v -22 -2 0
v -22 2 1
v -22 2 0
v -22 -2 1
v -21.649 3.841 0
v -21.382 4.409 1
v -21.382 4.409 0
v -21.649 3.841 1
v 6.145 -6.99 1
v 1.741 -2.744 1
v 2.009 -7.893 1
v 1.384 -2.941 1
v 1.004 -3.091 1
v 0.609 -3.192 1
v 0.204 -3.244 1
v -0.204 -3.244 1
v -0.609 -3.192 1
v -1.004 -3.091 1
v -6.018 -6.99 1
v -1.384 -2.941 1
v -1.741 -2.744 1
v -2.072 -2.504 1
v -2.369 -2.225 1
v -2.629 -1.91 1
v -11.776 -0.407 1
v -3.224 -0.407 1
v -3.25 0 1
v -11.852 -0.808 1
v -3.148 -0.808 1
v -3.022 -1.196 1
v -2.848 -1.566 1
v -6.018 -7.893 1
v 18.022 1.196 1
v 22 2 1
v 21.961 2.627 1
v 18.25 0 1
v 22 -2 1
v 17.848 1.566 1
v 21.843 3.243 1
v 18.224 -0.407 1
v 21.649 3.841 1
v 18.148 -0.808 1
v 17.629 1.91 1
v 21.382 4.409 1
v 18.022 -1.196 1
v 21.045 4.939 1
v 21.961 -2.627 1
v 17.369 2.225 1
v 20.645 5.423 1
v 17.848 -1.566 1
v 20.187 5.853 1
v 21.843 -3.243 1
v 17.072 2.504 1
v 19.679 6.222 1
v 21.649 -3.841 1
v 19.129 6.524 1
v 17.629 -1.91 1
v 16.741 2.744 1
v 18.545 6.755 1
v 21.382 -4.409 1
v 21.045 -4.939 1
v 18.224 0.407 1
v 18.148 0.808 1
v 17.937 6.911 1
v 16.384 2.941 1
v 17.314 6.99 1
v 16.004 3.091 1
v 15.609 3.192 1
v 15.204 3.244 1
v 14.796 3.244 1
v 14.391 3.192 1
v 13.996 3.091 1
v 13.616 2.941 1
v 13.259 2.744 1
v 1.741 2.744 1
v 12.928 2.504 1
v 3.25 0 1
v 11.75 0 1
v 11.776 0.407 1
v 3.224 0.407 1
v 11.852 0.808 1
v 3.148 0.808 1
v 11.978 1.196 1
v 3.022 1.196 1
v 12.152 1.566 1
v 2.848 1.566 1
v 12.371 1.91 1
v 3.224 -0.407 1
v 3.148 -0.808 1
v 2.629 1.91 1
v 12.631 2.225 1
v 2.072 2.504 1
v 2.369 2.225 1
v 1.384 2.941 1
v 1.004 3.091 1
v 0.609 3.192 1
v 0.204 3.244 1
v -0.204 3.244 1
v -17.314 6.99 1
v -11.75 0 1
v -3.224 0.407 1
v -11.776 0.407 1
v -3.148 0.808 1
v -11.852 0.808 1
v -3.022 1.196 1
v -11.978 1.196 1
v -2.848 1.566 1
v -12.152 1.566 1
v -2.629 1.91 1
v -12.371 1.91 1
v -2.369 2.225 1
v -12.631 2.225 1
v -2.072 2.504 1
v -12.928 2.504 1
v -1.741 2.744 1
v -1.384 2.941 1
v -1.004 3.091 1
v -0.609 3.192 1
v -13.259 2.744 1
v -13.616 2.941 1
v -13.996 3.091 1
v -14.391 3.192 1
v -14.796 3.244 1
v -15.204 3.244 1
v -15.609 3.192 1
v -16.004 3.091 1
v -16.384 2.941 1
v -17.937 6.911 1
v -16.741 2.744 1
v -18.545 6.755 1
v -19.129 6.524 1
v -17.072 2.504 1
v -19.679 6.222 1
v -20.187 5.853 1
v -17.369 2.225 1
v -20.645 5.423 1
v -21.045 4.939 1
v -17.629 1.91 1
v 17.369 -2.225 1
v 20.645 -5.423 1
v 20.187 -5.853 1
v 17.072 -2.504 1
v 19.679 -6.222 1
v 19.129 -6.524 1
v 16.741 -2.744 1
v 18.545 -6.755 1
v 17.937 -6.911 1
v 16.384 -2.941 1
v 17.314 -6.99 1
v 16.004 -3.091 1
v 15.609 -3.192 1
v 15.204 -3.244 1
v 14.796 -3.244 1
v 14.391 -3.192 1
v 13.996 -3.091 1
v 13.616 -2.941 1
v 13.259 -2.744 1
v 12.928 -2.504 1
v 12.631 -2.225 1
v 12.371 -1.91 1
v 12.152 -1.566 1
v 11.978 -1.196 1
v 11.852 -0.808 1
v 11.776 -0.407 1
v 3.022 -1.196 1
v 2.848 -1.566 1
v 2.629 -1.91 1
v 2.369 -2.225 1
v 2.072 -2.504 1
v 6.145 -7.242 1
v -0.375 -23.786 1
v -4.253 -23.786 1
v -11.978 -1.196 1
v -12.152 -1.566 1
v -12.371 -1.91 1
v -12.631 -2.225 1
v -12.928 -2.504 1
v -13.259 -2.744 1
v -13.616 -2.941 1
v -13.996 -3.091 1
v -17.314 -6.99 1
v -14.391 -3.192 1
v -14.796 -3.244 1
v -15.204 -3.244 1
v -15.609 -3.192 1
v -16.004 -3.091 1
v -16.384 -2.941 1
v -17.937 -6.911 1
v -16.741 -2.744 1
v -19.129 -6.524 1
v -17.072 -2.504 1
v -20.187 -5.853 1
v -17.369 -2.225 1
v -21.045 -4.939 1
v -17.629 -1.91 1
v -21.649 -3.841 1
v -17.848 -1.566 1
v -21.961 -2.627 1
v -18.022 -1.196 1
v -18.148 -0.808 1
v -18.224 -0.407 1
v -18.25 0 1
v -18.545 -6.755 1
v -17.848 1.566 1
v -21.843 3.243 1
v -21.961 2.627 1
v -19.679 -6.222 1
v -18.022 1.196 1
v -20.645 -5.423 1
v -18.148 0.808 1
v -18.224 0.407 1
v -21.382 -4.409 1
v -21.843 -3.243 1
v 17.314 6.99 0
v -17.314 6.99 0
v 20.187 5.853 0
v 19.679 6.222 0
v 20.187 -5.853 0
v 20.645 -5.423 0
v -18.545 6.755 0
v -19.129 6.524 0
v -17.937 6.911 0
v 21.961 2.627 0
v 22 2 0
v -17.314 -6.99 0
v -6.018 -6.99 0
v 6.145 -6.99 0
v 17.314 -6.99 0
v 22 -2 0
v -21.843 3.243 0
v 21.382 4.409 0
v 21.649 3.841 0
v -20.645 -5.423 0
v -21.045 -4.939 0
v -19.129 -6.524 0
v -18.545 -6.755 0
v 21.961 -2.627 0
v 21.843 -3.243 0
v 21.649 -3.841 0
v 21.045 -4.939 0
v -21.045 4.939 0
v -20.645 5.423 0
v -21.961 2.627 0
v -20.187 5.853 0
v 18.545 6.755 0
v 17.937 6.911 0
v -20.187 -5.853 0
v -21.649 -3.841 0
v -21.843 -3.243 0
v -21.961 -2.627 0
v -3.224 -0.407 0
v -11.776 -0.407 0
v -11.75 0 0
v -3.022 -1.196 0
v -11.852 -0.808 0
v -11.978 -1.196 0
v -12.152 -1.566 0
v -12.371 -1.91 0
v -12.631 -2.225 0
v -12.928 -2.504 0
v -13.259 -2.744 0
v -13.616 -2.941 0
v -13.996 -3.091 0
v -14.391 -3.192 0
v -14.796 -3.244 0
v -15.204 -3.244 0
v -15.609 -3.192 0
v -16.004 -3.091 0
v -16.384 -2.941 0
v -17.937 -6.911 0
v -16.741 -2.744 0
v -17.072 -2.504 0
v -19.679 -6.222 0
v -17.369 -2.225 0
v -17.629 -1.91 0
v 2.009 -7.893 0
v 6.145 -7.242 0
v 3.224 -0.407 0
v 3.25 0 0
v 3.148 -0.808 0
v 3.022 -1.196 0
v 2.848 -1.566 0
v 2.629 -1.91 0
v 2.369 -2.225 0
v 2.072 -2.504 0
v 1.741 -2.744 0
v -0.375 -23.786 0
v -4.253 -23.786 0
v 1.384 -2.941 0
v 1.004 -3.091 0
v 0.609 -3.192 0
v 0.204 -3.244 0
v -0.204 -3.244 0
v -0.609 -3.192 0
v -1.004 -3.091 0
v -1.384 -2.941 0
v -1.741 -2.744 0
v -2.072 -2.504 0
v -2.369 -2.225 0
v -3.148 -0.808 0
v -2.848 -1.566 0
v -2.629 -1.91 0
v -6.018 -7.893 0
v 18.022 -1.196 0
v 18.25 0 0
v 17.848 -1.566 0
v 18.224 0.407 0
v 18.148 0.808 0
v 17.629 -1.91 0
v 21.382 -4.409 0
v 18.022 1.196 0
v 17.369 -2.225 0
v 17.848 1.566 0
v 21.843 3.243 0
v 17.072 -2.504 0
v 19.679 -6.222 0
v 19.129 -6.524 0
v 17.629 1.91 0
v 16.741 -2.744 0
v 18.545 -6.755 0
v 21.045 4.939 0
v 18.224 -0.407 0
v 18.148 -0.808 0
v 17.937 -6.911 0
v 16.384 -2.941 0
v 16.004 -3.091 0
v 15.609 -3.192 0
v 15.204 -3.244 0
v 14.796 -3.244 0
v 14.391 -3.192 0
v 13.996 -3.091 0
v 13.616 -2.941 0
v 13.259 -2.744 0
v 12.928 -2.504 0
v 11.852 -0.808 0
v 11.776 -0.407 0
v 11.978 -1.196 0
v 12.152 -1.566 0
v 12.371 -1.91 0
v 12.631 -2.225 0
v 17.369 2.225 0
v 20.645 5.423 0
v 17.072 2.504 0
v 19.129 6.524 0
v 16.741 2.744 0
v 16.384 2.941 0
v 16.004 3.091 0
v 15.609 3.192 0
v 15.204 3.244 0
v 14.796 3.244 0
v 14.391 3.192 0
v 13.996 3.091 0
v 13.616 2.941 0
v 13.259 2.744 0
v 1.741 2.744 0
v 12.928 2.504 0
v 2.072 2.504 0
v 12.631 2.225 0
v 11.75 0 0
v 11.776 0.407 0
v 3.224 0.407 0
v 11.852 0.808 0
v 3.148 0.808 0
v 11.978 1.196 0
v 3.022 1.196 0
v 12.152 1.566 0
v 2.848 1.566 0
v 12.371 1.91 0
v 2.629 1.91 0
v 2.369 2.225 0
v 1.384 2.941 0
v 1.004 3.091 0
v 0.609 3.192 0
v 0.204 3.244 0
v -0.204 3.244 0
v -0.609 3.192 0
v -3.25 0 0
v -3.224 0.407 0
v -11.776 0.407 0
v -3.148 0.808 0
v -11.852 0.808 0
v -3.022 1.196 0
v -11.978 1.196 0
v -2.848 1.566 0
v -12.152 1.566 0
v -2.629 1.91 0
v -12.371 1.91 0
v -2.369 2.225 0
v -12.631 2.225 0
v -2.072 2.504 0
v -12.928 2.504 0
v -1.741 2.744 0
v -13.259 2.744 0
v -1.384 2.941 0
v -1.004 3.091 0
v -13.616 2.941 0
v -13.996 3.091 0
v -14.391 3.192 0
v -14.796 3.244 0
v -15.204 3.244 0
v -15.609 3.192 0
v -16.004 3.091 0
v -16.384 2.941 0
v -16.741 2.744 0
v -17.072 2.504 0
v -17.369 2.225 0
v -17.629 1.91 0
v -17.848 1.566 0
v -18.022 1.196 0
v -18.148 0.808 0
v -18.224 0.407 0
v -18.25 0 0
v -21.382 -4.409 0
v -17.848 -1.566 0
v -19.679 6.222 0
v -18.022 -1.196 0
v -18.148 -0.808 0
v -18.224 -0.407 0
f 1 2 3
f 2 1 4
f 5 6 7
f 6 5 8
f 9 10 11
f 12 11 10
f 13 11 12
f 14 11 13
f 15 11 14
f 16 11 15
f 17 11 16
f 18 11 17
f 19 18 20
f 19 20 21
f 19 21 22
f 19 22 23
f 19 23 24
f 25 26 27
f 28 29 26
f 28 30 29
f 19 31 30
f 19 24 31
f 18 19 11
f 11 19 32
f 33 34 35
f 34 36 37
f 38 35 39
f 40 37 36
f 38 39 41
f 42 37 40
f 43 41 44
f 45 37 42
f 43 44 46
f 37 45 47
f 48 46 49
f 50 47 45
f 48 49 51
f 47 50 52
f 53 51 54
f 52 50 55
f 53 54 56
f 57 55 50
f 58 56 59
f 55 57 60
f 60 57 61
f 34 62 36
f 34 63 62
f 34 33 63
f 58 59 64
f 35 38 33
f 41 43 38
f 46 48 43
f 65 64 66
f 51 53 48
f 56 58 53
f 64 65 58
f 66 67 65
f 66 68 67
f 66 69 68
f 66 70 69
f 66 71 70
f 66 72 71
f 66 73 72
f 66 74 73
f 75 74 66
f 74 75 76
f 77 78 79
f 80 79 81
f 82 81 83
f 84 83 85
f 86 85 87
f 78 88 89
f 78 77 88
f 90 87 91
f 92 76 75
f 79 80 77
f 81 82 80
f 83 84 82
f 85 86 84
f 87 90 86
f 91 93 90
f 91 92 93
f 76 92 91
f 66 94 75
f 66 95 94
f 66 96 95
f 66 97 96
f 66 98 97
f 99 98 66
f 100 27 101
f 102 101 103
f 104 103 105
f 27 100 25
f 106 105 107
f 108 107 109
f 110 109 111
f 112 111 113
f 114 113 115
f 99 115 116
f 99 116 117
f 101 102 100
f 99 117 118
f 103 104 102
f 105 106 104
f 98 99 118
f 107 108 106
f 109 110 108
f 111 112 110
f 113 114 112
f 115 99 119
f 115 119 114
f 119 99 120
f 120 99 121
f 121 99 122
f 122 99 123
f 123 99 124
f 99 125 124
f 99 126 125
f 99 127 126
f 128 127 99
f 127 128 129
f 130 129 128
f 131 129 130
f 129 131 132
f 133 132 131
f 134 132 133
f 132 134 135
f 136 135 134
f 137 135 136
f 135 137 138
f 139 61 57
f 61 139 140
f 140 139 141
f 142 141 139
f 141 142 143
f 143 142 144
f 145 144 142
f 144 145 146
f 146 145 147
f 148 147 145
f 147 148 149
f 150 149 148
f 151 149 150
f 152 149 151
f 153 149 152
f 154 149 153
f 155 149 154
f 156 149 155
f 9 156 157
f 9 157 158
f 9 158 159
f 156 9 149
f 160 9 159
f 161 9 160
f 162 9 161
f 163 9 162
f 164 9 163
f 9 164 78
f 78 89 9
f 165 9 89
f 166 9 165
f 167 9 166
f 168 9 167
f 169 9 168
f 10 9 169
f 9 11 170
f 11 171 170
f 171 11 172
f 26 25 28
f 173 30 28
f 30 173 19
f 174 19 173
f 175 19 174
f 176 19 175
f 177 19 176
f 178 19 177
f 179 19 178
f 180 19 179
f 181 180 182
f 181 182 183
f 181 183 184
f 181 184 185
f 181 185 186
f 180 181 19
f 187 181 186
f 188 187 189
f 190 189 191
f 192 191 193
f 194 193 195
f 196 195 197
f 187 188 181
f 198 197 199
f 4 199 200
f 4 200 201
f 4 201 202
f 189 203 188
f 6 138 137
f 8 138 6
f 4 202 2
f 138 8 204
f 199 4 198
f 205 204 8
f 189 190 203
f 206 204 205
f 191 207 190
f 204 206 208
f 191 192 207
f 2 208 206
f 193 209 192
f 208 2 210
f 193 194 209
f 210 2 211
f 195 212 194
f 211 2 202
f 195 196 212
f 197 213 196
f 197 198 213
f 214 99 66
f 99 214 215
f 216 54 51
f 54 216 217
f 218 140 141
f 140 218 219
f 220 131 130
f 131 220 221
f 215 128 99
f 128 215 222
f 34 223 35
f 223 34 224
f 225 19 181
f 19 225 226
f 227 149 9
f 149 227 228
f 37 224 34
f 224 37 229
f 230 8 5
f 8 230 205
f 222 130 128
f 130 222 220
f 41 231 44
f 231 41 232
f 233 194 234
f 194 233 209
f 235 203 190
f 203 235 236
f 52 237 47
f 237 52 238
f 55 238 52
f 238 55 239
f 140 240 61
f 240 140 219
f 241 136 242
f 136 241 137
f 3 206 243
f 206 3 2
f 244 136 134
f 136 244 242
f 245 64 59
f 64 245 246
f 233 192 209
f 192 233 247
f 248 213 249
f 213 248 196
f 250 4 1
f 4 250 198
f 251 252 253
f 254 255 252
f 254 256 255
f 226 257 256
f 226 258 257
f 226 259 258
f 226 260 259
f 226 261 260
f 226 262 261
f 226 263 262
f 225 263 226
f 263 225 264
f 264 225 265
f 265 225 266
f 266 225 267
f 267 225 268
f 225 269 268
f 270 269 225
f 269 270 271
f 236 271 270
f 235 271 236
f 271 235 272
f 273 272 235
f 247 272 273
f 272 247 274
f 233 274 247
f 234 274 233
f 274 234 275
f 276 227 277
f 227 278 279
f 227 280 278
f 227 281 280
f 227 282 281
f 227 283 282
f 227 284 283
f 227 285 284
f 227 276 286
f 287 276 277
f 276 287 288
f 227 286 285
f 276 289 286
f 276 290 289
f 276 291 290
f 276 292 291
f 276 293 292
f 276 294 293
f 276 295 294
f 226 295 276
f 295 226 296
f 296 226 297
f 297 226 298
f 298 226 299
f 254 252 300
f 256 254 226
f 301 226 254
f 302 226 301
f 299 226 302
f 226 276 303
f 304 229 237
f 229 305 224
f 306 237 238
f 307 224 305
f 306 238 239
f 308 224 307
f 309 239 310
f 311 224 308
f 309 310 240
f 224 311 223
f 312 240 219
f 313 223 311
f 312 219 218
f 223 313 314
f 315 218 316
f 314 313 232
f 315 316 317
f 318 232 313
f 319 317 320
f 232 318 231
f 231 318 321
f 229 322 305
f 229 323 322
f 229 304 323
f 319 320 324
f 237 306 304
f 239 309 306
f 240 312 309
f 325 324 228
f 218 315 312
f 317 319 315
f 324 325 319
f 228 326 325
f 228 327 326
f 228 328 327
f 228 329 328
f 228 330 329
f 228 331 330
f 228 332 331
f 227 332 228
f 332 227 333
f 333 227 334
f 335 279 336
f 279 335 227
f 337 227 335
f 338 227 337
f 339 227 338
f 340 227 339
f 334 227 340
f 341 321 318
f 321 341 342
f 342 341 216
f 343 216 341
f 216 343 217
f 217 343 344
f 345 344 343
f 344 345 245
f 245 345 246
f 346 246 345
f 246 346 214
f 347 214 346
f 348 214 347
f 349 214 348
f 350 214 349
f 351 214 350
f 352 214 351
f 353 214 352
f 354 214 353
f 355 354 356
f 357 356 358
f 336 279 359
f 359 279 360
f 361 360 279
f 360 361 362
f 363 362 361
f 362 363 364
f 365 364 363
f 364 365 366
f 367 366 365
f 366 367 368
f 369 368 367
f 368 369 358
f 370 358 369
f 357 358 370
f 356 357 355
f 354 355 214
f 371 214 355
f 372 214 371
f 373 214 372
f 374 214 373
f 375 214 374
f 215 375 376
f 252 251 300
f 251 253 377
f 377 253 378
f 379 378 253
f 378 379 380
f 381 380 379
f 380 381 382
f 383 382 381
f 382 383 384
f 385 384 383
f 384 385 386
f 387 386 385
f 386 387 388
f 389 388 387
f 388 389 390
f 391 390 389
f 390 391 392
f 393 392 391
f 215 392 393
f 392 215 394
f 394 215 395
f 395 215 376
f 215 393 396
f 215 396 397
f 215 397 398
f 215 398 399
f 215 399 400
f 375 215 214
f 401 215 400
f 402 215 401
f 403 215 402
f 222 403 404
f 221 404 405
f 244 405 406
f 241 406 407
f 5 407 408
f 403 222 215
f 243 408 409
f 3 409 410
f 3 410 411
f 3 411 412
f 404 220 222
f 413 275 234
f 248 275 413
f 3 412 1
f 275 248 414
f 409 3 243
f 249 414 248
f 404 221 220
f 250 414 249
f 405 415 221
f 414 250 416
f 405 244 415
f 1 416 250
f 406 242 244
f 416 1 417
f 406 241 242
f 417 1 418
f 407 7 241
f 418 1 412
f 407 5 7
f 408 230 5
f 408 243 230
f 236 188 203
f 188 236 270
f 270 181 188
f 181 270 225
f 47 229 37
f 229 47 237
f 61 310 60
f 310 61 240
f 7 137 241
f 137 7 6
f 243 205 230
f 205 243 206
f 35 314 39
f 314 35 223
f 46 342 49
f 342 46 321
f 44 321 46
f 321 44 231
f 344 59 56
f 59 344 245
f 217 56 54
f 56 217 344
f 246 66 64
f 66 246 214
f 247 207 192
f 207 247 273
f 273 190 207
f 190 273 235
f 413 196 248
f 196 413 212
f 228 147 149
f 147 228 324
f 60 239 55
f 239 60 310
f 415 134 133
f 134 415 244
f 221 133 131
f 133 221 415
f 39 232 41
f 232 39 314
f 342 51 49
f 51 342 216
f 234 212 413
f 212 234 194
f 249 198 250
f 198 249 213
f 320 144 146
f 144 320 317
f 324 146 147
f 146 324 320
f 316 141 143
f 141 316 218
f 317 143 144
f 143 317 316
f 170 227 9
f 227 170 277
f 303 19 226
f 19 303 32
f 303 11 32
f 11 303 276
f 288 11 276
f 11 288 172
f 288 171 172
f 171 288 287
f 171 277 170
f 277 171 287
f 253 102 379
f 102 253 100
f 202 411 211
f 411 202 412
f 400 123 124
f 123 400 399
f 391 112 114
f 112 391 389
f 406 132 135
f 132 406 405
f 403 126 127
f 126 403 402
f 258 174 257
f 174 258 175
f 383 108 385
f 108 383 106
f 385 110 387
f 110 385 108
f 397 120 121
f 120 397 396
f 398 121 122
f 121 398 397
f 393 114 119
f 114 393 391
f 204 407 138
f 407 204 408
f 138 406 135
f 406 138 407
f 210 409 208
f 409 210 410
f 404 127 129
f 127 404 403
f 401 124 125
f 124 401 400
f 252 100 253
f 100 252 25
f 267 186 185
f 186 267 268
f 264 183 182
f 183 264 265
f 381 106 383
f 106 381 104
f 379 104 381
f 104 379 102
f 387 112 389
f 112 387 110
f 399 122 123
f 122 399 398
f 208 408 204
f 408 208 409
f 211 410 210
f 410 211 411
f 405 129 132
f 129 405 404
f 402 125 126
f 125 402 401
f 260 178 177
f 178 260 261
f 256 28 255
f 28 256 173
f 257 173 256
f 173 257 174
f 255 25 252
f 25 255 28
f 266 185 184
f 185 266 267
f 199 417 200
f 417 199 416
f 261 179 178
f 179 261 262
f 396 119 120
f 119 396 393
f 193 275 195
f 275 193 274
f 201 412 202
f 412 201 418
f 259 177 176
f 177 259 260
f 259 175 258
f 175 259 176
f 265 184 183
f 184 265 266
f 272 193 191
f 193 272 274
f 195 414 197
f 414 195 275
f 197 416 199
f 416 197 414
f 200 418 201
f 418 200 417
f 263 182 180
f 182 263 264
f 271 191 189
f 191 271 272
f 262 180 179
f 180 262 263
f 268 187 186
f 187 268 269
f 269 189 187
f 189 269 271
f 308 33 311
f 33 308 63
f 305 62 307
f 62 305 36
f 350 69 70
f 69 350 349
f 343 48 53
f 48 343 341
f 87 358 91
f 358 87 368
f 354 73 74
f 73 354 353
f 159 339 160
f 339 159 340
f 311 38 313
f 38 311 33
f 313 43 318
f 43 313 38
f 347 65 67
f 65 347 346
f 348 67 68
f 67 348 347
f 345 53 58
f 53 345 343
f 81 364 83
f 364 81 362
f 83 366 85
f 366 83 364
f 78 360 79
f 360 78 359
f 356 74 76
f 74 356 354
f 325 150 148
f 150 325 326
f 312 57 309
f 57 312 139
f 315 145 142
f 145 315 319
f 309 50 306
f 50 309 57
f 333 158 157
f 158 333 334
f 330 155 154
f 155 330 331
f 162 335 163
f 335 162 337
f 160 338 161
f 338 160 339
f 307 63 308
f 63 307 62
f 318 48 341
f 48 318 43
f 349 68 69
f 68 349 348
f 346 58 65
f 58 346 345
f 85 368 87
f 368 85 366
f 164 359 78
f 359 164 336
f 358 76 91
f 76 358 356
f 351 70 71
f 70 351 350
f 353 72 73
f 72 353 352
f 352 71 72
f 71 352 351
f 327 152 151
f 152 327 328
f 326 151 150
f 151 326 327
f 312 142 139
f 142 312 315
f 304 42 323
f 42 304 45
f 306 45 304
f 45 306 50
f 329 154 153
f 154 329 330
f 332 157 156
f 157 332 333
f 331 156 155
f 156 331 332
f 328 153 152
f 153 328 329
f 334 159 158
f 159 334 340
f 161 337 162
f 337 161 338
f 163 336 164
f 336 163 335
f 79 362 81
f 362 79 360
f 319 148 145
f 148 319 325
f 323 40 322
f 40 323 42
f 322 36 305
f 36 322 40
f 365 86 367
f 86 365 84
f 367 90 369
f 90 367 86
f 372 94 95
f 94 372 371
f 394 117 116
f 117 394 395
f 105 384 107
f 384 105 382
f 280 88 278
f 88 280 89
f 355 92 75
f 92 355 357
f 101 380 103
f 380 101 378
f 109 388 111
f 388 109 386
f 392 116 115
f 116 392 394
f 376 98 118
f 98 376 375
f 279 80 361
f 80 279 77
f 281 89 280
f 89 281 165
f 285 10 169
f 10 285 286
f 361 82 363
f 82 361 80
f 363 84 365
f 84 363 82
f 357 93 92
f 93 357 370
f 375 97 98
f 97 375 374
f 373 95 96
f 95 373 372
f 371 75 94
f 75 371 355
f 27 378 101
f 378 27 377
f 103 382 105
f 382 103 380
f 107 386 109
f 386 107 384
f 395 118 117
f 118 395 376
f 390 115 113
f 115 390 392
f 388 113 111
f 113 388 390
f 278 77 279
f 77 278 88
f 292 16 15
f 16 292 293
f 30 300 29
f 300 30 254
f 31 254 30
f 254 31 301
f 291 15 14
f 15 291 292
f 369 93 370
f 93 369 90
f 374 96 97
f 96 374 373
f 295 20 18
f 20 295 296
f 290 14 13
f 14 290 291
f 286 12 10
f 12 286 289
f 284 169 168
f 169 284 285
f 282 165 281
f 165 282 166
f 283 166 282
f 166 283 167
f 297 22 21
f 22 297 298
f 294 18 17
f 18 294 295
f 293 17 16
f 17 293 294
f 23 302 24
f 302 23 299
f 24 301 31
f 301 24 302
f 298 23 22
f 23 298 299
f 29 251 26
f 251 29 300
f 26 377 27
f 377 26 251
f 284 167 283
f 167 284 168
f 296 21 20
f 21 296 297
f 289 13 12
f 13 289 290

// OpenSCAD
$fn = 50;


difference() {
	union() {
		translate(v = [0, 0, 0]) {
			rotate(a = [0, 0, 0]) {
				hull() {
					translate(v = [-17.0000000000, 2.0000000000, 0]) {
						rotate(a = [0, 0, 0]) {
							translate(v = [0, 0, 0]) {
								rotate(a = [0, 0, 0]) {
									cylinder(h = 1, r = 5);
								}
							}
						}
					}
					translate(v = [17.0000000000, 2.0000000000, 0]) {
						rotate(a = [0, 0, 0]) {
							translate(v = [0, 0, 0]) {
								rotate(a = [0, 0, 0]) {
									cylinder(h = 1, r = 5);
								}
							}
						}
					}
					translate(v = [-17.0000000000, -2.0000000000, 0]) {
						rotate(a = [0, 0, 0]) {
							translate(v = [0, 0, 0]) {
								rotate(a = [0, 0, 0]) {
									cylinder(h = 1, r = 5);
								}
							}
						}
					}
					translate(v = [17.0000000000, -2.0000000000, 0]) {
						rotate(a = [0, 0, 0]) {
							translate(v = [0, 0, 0]) {
								rotate(a = [0, 0, 0]) {
									cylinder(h = 1, r = 5);
								}
							}
						}
					}
				}
			}
		}
		translate(v = [0, -5, 0]) {
			rotate(a = [0, 0, 0]) {
				linear_extrude(height = 1) {
					text(font = "DejaVu Sans Mono:style=Bold", halign = "center", size = 19.0000000000, text = "7", valign = "top");
				}
			}
		}
	}
	union() {
		translate(v = [-15.0000000000, 0.0000000000, -125.0000000000]) {
			rotate(a = [0, 0, 0]) {
				cylinder(h = 250, r = 3.2500000000);
			}
		}
		translate(v = [15.0000000000, 0.0000000000, -125.0000000000]) {
			rotate(a = [0, 0, 0]) {
				cylinder(h = 250, r = 3.2500000000);
			}
		}
		translate(v = [15.0000000000, 0.0000000000, -125.0000000000]) {
			rotate(a = [0, 0, 0]) {
				cylinder(h = 250, r = 3.2500000000);
			}
		}
		translate(v = [0, 0, -125.0000000000]) {
			rotate(a = [0, 0, 0]) {
				cylinder(h = 250, r = 3.2500000000);
			}
		}
	}
}
